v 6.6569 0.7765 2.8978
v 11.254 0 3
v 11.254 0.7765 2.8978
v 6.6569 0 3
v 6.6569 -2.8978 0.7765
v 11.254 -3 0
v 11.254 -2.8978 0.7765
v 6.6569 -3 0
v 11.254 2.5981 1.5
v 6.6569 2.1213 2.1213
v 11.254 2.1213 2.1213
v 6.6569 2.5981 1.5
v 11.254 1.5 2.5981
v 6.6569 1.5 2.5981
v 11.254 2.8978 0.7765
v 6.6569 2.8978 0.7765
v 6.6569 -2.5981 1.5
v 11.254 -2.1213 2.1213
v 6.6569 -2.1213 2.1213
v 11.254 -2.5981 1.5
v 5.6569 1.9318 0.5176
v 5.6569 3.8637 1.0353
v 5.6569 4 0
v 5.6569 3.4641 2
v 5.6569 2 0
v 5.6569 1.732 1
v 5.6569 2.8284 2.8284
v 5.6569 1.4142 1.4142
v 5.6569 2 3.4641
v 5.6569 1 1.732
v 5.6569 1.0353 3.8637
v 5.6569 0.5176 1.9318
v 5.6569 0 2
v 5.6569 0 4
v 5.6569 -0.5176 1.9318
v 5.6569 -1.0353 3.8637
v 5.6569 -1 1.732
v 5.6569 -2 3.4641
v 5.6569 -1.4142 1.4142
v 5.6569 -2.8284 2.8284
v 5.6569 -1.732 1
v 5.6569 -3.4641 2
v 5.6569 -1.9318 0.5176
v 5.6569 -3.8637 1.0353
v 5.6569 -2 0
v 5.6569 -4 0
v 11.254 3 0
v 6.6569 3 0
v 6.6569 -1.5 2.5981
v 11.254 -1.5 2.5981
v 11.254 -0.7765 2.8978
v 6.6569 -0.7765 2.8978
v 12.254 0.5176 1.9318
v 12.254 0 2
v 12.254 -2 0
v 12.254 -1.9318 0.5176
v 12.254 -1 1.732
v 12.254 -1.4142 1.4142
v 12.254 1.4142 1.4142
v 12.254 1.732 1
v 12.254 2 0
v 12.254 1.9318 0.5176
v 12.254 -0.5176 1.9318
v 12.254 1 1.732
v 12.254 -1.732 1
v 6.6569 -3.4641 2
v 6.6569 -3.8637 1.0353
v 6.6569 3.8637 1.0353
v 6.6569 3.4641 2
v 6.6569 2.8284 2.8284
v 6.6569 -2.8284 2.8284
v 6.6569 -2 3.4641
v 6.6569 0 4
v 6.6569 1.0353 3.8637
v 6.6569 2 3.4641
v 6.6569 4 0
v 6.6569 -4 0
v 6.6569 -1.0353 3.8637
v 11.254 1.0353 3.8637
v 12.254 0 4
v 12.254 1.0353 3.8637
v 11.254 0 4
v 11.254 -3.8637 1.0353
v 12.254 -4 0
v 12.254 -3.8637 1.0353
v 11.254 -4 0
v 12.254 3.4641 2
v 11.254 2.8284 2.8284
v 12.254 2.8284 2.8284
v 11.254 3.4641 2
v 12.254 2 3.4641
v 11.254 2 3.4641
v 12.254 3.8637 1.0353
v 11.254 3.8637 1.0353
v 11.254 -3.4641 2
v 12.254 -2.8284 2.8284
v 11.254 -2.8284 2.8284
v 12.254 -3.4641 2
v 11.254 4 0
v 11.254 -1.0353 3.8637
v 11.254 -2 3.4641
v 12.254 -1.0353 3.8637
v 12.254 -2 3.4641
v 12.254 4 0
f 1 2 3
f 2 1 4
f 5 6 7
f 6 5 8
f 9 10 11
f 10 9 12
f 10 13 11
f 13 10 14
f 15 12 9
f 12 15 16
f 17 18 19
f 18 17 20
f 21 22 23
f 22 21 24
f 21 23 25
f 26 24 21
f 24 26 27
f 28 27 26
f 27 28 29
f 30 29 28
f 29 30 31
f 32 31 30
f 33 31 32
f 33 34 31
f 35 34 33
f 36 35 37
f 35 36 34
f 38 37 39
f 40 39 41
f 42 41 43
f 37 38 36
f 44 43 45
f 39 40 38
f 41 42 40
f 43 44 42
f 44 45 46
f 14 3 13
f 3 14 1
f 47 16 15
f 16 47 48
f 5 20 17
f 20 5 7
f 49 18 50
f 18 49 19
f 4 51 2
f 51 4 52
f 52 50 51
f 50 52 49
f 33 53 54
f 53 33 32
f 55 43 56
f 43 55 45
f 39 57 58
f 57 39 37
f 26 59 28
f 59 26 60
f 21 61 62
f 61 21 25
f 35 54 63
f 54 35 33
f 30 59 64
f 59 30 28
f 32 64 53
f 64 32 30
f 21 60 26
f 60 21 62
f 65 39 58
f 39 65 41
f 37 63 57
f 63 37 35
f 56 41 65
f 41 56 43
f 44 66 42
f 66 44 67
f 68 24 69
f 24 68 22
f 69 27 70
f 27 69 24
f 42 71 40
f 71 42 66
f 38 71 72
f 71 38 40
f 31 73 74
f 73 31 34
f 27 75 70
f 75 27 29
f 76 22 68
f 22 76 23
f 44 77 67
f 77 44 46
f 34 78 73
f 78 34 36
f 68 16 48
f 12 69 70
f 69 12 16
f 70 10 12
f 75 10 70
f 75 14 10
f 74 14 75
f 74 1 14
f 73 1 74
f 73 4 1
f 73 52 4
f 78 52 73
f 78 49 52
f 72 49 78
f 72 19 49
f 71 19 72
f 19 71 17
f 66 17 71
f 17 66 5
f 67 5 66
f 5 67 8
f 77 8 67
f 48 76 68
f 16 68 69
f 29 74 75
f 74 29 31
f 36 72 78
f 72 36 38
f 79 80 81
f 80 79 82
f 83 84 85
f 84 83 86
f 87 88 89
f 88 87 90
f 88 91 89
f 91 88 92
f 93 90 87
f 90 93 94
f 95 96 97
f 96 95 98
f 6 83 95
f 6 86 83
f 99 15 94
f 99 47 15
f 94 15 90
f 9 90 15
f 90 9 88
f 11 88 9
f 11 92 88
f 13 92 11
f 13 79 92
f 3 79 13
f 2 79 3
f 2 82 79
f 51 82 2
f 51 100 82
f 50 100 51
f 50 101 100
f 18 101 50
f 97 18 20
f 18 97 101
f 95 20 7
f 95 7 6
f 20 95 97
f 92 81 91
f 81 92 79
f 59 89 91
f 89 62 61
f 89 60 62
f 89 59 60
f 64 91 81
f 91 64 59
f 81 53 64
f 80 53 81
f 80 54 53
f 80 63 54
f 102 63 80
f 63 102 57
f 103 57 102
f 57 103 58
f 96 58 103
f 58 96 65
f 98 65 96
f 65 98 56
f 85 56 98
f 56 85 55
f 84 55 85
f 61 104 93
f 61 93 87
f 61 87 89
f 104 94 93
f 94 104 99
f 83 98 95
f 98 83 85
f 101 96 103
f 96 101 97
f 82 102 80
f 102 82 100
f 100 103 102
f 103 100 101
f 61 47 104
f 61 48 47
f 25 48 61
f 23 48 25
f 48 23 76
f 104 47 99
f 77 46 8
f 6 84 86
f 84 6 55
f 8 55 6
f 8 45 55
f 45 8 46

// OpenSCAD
// file: ../build_environments.scad
// build_environments.scad: modules to build level sections
//

module pool(diameter=10.0, wall_height=2.0, step_width=3.0, connections=[])
{
    difference() {
        union() {
        difference() {
            cylinder(h=0.5,r1=diameter+step_width,r2=diameter+step_width,$fn=48);
            translate([0,0,-0.1])
                cylinder(h=0.7,r1=diameter,r2=diameter,$fn=48);
        }
        difference() {
            cylinder(h=wall_height,r1=diameter+step_width+1.0,r2=diameter+step_width+1.0,$fn=48);
            translate([0,0,-0.1])
                cylinder(h=wall_height+0.2,r1=diameter+step_width,r2=diameter+step_width,$fn=48);
        }
        }
    
        for (c = connections)
        {
            rotate([0,90,0]) {
                angle = atan2(c[1],c[0]);
                rotate([-angle,0,0]) {
                    cylinder(h=diameter+5.0,r1=c[2],r2=c[2],$fn=48);
                }
            }
        }
    }
}

module straight(length=10.0, width=2.0, dy1=0.0, dy2=0.0, dz=0.0)
{
    dims = [0, 0, 0, 0, 0, (dz/length)];
    matrix = [
        [ 1, dims[0], dims[1], 0 ],
        [ dims[2], 1, dims[4], 0 ],
        [ dims[5], dims[3], 1, 0 ],
        [ 0, 0, 0, 1 ]
    ];
    multmatrix(matrix)
    difference() {
        translate([dy1,0,0])
        union() {
            rotate([0,90,0]) {
                difference() {
                    cylinder(h=(length-dy1-dy2),r1=width+1.0,r2=width+1.0,$fn=24);
                    translate([0,0,-0.1])
                        cylinder(h=(length-dy1-dy2+0.2),r1=width,r2=width,$fn=24);
                }
                difference() {
                    cylinder(h=1.0,r1=width+2.0,r2=width+2.0,$fn=24);
                    translate([0,0,-0.1])
                        cylinder(h=1.2,r1=width,r2=width,$fn=24);
                }
                translate([0,0,(length-dy1-dy2)-1.0]) {
                    difference() {
                        cylinder(h=1.0,r1=width+2.0,r2=width+2.0,$fn=24);
                        translate([0,0,-0.1])
                            cylinder(h=1.2,r1=width,r2=width,$fn=24);
                    }
                }
            }
        }
        translate([0,0,-(2*width+4.0)/2])
            cube([3*length,3*length,2*width+4.0],center=true);
    }
}

module curve(p0=[0,0], center=[0,0], dir=1, angle=0.0, width=2.0)
{
    radius = sqrt((p0[0]-center[0])*(p0[0]-center[0]) + (p0[1]-center[1])*(p0[1]-center[1]));
    if (dir == 0) {
        difference() {
            rotate([0,0,-90])
            difference() {
                rotate_extrude(angle = angle, convexity = 10, $fn=32)
                    translate([radius, 0, 0])
                        circle(r = width+1.0,$fn=24);
                rotate([0,0,-1.0])
                    rotate_extrude(angle = angle+2.0, convexity = 10, $fn=32)
                        translate([radius, 0, 0])
                            circle(r = width,$fn=24);
            }
            translate([0,0,-(2*width+4.0)/2])
                cube([5*radius,5*radius,2*width+4.0],center=true);
        }
    }
    else {
        difference() {
            rotate([0,0,90])
            difference() {
                rotate_extrude(angle = -angle, convexity = 10, $fn=32)
                    translate([radius, 0, 0])
                        circle(r = width+1.0,$fn=24);
                rotate([0,0,1.0])
                    rotate_extrude(angle = -angle-2.0, convexity = 10, $fn=32)
                        translate([radius, 0, 0])
                            circle(r = width,$fn=24);
            }
            translate([0,0,-(2*width+4.0)/2])
                cube([5*radius,5*radius,2*width+4.0],center=true);
        }
    }

}

// test pool
//pool(diameter=12.0000, wall_height=3.0000, step_width=3.0000, connections=[[0.0000,-26.0000,2.0000], [23.6074,0.0000,2.0000]]);

// test straight, slope
//straight(length=26.0000, width=2.0000, dy1=11.8322, dy2=6.7082, dz=0.0000);
//straight(length=29.1549, width=12.0000, dy1=0.0000, dy2=0.0000, dz=-15.0000);

// test curve
//curve(p0=[23.6074, 0.0000], center=[23.6074, 5.0000], dir=0, angle=60.1011, width=2.0000);
//curve(p0=[33.6426, 12.4219], center=[37.9771, 9.9295], dir=1, angle=120.4627, width=2.0000);
// main file
use <../build_environments.scad>;
straight(length=20.0000, width=2.0000, dy1=5.6569, dy2=7.7460, dz=0.0000);
